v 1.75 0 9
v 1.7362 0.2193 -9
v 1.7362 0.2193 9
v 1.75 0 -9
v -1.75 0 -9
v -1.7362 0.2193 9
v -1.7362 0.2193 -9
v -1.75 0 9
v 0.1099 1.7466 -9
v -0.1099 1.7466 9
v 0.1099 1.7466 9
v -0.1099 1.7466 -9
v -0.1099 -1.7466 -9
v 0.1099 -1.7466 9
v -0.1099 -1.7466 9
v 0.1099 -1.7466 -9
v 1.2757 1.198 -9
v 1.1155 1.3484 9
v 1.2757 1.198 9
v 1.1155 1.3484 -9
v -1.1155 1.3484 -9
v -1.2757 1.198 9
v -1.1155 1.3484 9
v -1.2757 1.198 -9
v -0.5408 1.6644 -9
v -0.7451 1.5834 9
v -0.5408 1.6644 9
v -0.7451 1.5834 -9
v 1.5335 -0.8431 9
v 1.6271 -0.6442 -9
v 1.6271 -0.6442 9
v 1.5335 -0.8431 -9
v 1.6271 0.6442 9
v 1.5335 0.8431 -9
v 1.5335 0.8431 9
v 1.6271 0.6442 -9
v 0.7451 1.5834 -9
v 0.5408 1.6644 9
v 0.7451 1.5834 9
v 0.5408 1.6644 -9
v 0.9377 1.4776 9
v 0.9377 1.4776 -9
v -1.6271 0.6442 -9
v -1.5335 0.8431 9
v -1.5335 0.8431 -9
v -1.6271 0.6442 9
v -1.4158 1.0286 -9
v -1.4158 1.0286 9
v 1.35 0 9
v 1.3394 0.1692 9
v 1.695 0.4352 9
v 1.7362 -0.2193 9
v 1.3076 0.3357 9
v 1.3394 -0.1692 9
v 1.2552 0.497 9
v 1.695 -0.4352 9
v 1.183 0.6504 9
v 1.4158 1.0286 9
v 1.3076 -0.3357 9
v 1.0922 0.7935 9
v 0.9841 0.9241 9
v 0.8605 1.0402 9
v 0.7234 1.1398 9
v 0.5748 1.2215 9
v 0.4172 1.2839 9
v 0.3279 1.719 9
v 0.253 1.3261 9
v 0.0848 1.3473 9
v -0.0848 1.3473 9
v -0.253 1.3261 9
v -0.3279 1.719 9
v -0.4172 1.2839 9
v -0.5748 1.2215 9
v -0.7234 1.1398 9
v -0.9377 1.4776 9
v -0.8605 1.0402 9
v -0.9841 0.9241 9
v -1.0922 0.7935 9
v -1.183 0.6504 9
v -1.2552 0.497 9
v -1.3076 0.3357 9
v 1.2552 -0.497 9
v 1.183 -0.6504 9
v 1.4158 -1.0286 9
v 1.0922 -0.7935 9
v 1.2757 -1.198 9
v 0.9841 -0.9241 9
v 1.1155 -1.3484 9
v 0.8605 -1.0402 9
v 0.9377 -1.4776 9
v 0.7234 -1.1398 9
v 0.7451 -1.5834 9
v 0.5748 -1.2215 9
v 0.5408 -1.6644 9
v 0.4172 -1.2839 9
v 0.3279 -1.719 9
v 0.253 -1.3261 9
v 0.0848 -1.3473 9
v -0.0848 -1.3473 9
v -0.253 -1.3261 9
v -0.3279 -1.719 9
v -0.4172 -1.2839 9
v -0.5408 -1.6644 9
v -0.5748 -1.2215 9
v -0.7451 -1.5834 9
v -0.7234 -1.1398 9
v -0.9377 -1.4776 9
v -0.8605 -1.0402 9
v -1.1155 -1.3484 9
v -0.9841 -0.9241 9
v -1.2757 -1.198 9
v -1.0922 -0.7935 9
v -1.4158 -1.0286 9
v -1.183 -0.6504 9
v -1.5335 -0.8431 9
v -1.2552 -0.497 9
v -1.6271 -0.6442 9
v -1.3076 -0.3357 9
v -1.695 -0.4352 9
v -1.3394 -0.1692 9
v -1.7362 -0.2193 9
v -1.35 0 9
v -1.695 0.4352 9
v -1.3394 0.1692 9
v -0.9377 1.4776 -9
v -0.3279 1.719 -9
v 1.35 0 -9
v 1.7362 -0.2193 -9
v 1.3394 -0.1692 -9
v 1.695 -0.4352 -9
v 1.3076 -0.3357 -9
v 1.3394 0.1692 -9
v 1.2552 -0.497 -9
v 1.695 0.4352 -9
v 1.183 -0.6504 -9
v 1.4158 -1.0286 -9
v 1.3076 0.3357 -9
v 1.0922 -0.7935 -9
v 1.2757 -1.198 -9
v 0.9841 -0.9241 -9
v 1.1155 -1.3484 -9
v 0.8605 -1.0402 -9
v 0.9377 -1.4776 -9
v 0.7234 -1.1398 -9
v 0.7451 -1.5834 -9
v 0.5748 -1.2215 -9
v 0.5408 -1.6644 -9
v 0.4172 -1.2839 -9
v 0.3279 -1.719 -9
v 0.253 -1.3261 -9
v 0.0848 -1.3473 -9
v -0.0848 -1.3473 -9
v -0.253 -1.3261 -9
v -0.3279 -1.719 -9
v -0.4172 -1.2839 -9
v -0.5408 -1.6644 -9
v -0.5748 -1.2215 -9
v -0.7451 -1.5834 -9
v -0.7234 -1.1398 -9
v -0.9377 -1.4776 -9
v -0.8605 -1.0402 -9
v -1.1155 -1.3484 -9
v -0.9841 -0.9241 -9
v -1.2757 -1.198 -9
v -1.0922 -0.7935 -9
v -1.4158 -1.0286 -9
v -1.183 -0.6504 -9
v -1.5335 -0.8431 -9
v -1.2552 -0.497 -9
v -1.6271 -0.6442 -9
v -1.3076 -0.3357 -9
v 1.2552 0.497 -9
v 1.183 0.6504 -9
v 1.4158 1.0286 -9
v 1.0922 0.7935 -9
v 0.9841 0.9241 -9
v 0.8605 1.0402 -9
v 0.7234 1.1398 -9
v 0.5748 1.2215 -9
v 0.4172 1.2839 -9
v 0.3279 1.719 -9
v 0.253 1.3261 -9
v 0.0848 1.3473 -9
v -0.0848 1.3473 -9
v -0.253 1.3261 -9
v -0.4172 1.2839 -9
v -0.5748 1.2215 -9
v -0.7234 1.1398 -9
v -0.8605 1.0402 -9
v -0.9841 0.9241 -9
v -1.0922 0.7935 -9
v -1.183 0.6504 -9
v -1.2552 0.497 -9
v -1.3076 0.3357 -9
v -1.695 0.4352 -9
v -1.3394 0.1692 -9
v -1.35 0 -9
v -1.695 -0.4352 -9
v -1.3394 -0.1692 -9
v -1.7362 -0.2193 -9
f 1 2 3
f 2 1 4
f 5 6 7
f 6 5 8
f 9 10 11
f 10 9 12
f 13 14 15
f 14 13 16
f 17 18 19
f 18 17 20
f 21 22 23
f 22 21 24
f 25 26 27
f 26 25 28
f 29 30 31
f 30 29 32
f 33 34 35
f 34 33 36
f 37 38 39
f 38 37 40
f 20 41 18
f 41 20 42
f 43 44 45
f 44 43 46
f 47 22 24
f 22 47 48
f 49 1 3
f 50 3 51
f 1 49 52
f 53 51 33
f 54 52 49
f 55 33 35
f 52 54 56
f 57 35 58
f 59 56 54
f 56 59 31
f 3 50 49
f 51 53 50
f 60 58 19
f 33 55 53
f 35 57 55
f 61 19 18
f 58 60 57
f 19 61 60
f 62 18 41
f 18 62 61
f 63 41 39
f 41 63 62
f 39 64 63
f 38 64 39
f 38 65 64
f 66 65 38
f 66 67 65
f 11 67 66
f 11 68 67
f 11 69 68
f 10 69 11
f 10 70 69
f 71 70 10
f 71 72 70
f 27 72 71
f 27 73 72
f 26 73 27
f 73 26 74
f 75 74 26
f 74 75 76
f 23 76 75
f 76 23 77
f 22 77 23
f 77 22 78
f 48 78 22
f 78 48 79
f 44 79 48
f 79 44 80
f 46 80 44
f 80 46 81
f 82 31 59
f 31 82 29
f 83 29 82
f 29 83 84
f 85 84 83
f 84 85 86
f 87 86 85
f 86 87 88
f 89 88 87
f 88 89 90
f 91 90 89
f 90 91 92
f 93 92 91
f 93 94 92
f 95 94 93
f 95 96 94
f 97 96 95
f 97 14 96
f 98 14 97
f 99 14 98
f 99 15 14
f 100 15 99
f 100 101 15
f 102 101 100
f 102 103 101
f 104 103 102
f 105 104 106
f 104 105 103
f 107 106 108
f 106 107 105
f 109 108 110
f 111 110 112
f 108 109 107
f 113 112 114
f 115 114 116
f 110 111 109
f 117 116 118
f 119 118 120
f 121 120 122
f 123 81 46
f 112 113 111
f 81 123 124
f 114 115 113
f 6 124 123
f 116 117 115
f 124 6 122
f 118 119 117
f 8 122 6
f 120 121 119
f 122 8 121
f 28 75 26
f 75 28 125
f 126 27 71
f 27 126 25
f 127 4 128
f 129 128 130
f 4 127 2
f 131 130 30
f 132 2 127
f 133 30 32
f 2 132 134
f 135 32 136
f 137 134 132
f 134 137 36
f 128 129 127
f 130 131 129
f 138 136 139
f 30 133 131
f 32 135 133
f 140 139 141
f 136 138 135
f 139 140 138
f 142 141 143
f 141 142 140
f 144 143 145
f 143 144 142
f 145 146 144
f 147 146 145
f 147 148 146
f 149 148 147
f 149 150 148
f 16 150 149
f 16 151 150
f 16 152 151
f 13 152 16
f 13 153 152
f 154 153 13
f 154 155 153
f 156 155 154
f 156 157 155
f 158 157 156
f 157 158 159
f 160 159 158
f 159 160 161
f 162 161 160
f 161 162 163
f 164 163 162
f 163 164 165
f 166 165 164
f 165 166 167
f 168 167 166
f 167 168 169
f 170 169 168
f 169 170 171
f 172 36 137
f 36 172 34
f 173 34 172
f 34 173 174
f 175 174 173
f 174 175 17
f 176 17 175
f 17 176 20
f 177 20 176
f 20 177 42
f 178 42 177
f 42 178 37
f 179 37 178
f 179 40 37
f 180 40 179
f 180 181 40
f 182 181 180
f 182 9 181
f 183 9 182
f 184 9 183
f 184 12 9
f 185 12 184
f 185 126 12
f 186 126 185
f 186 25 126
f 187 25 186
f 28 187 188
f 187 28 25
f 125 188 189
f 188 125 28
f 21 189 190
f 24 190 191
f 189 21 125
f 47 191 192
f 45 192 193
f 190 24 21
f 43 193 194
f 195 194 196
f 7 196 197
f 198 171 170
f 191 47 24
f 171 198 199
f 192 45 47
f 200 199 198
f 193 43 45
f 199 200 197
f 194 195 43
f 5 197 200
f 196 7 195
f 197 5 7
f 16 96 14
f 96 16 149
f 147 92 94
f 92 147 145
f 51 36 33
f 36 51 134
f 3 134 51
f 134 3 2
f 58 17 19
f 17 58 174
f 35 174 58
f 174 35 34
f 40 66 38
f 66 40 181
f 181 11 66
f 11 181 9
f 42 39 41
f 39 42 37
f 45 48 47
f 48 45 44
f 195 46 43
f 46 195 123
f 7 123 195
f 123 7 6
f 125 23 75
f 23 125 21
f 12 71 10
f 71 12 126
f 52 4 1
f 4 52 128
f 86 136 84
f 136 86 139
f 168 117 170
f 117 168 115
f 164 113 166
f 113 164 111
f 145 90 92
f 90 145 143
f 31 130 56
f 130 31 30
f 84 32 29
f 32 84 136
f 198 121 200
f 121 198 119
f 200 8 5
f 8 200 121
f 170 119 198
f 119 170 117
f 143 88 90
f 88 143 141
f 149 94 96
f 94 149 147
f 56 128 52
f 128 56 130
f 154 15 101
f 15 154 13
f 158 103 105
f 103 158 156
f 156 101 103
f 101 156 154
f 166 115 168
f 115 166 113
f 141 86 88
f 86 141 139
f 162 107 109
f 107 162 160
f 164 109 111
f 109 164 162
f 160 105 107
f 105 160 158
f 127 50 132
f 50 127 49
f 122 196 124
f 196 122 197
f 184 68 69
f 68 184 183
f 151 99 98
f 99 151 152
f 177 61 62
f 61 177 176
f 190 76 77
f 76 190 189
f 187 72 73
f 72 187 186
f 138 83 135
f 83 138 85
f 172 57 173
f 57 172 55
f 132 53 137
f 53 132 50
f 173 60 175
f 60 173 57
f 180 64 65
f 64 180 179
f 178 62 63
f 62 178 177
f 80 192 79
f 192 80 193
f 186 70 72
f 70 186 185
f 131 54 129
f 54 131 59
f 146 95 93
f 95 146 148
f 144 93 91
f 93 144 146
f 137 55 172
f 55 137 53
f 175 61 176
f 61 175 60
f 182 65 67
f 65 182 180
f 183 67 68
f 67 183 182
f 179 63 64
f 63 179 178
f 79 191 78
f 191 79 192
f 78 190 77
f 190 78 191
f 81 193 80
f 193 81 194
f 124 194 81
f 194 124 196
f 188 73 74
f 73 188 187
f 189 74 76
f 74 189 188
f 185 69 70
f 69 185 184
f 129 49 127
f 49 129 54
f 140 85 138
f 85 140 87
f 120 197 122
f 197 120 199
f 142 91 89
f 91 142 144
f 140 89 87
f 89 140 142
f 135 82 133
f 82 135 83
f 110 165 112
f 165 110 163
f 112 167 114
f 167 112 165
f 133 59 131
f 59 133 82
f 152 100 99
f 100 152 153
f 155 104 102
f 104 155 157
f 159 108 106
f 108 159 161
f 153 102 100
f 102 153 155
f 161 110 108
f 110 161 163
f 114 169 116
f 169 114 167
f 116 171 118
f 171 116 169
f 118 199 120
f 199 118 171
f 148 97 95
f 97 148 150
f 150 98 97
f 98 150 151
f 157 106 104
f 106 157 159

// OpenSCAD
$fn = 50;


difference() {
	union() {
		translate(v = [0, 0, -9.0000000000]) {
			cylinder(h = 18, r = 1.7500000000);
		}
	}
	union() {
		translate(v = [0, 0, -100.0000000000]) {
			cylinder(h = 200, r = 1.3500000000);
		}
	}
}
